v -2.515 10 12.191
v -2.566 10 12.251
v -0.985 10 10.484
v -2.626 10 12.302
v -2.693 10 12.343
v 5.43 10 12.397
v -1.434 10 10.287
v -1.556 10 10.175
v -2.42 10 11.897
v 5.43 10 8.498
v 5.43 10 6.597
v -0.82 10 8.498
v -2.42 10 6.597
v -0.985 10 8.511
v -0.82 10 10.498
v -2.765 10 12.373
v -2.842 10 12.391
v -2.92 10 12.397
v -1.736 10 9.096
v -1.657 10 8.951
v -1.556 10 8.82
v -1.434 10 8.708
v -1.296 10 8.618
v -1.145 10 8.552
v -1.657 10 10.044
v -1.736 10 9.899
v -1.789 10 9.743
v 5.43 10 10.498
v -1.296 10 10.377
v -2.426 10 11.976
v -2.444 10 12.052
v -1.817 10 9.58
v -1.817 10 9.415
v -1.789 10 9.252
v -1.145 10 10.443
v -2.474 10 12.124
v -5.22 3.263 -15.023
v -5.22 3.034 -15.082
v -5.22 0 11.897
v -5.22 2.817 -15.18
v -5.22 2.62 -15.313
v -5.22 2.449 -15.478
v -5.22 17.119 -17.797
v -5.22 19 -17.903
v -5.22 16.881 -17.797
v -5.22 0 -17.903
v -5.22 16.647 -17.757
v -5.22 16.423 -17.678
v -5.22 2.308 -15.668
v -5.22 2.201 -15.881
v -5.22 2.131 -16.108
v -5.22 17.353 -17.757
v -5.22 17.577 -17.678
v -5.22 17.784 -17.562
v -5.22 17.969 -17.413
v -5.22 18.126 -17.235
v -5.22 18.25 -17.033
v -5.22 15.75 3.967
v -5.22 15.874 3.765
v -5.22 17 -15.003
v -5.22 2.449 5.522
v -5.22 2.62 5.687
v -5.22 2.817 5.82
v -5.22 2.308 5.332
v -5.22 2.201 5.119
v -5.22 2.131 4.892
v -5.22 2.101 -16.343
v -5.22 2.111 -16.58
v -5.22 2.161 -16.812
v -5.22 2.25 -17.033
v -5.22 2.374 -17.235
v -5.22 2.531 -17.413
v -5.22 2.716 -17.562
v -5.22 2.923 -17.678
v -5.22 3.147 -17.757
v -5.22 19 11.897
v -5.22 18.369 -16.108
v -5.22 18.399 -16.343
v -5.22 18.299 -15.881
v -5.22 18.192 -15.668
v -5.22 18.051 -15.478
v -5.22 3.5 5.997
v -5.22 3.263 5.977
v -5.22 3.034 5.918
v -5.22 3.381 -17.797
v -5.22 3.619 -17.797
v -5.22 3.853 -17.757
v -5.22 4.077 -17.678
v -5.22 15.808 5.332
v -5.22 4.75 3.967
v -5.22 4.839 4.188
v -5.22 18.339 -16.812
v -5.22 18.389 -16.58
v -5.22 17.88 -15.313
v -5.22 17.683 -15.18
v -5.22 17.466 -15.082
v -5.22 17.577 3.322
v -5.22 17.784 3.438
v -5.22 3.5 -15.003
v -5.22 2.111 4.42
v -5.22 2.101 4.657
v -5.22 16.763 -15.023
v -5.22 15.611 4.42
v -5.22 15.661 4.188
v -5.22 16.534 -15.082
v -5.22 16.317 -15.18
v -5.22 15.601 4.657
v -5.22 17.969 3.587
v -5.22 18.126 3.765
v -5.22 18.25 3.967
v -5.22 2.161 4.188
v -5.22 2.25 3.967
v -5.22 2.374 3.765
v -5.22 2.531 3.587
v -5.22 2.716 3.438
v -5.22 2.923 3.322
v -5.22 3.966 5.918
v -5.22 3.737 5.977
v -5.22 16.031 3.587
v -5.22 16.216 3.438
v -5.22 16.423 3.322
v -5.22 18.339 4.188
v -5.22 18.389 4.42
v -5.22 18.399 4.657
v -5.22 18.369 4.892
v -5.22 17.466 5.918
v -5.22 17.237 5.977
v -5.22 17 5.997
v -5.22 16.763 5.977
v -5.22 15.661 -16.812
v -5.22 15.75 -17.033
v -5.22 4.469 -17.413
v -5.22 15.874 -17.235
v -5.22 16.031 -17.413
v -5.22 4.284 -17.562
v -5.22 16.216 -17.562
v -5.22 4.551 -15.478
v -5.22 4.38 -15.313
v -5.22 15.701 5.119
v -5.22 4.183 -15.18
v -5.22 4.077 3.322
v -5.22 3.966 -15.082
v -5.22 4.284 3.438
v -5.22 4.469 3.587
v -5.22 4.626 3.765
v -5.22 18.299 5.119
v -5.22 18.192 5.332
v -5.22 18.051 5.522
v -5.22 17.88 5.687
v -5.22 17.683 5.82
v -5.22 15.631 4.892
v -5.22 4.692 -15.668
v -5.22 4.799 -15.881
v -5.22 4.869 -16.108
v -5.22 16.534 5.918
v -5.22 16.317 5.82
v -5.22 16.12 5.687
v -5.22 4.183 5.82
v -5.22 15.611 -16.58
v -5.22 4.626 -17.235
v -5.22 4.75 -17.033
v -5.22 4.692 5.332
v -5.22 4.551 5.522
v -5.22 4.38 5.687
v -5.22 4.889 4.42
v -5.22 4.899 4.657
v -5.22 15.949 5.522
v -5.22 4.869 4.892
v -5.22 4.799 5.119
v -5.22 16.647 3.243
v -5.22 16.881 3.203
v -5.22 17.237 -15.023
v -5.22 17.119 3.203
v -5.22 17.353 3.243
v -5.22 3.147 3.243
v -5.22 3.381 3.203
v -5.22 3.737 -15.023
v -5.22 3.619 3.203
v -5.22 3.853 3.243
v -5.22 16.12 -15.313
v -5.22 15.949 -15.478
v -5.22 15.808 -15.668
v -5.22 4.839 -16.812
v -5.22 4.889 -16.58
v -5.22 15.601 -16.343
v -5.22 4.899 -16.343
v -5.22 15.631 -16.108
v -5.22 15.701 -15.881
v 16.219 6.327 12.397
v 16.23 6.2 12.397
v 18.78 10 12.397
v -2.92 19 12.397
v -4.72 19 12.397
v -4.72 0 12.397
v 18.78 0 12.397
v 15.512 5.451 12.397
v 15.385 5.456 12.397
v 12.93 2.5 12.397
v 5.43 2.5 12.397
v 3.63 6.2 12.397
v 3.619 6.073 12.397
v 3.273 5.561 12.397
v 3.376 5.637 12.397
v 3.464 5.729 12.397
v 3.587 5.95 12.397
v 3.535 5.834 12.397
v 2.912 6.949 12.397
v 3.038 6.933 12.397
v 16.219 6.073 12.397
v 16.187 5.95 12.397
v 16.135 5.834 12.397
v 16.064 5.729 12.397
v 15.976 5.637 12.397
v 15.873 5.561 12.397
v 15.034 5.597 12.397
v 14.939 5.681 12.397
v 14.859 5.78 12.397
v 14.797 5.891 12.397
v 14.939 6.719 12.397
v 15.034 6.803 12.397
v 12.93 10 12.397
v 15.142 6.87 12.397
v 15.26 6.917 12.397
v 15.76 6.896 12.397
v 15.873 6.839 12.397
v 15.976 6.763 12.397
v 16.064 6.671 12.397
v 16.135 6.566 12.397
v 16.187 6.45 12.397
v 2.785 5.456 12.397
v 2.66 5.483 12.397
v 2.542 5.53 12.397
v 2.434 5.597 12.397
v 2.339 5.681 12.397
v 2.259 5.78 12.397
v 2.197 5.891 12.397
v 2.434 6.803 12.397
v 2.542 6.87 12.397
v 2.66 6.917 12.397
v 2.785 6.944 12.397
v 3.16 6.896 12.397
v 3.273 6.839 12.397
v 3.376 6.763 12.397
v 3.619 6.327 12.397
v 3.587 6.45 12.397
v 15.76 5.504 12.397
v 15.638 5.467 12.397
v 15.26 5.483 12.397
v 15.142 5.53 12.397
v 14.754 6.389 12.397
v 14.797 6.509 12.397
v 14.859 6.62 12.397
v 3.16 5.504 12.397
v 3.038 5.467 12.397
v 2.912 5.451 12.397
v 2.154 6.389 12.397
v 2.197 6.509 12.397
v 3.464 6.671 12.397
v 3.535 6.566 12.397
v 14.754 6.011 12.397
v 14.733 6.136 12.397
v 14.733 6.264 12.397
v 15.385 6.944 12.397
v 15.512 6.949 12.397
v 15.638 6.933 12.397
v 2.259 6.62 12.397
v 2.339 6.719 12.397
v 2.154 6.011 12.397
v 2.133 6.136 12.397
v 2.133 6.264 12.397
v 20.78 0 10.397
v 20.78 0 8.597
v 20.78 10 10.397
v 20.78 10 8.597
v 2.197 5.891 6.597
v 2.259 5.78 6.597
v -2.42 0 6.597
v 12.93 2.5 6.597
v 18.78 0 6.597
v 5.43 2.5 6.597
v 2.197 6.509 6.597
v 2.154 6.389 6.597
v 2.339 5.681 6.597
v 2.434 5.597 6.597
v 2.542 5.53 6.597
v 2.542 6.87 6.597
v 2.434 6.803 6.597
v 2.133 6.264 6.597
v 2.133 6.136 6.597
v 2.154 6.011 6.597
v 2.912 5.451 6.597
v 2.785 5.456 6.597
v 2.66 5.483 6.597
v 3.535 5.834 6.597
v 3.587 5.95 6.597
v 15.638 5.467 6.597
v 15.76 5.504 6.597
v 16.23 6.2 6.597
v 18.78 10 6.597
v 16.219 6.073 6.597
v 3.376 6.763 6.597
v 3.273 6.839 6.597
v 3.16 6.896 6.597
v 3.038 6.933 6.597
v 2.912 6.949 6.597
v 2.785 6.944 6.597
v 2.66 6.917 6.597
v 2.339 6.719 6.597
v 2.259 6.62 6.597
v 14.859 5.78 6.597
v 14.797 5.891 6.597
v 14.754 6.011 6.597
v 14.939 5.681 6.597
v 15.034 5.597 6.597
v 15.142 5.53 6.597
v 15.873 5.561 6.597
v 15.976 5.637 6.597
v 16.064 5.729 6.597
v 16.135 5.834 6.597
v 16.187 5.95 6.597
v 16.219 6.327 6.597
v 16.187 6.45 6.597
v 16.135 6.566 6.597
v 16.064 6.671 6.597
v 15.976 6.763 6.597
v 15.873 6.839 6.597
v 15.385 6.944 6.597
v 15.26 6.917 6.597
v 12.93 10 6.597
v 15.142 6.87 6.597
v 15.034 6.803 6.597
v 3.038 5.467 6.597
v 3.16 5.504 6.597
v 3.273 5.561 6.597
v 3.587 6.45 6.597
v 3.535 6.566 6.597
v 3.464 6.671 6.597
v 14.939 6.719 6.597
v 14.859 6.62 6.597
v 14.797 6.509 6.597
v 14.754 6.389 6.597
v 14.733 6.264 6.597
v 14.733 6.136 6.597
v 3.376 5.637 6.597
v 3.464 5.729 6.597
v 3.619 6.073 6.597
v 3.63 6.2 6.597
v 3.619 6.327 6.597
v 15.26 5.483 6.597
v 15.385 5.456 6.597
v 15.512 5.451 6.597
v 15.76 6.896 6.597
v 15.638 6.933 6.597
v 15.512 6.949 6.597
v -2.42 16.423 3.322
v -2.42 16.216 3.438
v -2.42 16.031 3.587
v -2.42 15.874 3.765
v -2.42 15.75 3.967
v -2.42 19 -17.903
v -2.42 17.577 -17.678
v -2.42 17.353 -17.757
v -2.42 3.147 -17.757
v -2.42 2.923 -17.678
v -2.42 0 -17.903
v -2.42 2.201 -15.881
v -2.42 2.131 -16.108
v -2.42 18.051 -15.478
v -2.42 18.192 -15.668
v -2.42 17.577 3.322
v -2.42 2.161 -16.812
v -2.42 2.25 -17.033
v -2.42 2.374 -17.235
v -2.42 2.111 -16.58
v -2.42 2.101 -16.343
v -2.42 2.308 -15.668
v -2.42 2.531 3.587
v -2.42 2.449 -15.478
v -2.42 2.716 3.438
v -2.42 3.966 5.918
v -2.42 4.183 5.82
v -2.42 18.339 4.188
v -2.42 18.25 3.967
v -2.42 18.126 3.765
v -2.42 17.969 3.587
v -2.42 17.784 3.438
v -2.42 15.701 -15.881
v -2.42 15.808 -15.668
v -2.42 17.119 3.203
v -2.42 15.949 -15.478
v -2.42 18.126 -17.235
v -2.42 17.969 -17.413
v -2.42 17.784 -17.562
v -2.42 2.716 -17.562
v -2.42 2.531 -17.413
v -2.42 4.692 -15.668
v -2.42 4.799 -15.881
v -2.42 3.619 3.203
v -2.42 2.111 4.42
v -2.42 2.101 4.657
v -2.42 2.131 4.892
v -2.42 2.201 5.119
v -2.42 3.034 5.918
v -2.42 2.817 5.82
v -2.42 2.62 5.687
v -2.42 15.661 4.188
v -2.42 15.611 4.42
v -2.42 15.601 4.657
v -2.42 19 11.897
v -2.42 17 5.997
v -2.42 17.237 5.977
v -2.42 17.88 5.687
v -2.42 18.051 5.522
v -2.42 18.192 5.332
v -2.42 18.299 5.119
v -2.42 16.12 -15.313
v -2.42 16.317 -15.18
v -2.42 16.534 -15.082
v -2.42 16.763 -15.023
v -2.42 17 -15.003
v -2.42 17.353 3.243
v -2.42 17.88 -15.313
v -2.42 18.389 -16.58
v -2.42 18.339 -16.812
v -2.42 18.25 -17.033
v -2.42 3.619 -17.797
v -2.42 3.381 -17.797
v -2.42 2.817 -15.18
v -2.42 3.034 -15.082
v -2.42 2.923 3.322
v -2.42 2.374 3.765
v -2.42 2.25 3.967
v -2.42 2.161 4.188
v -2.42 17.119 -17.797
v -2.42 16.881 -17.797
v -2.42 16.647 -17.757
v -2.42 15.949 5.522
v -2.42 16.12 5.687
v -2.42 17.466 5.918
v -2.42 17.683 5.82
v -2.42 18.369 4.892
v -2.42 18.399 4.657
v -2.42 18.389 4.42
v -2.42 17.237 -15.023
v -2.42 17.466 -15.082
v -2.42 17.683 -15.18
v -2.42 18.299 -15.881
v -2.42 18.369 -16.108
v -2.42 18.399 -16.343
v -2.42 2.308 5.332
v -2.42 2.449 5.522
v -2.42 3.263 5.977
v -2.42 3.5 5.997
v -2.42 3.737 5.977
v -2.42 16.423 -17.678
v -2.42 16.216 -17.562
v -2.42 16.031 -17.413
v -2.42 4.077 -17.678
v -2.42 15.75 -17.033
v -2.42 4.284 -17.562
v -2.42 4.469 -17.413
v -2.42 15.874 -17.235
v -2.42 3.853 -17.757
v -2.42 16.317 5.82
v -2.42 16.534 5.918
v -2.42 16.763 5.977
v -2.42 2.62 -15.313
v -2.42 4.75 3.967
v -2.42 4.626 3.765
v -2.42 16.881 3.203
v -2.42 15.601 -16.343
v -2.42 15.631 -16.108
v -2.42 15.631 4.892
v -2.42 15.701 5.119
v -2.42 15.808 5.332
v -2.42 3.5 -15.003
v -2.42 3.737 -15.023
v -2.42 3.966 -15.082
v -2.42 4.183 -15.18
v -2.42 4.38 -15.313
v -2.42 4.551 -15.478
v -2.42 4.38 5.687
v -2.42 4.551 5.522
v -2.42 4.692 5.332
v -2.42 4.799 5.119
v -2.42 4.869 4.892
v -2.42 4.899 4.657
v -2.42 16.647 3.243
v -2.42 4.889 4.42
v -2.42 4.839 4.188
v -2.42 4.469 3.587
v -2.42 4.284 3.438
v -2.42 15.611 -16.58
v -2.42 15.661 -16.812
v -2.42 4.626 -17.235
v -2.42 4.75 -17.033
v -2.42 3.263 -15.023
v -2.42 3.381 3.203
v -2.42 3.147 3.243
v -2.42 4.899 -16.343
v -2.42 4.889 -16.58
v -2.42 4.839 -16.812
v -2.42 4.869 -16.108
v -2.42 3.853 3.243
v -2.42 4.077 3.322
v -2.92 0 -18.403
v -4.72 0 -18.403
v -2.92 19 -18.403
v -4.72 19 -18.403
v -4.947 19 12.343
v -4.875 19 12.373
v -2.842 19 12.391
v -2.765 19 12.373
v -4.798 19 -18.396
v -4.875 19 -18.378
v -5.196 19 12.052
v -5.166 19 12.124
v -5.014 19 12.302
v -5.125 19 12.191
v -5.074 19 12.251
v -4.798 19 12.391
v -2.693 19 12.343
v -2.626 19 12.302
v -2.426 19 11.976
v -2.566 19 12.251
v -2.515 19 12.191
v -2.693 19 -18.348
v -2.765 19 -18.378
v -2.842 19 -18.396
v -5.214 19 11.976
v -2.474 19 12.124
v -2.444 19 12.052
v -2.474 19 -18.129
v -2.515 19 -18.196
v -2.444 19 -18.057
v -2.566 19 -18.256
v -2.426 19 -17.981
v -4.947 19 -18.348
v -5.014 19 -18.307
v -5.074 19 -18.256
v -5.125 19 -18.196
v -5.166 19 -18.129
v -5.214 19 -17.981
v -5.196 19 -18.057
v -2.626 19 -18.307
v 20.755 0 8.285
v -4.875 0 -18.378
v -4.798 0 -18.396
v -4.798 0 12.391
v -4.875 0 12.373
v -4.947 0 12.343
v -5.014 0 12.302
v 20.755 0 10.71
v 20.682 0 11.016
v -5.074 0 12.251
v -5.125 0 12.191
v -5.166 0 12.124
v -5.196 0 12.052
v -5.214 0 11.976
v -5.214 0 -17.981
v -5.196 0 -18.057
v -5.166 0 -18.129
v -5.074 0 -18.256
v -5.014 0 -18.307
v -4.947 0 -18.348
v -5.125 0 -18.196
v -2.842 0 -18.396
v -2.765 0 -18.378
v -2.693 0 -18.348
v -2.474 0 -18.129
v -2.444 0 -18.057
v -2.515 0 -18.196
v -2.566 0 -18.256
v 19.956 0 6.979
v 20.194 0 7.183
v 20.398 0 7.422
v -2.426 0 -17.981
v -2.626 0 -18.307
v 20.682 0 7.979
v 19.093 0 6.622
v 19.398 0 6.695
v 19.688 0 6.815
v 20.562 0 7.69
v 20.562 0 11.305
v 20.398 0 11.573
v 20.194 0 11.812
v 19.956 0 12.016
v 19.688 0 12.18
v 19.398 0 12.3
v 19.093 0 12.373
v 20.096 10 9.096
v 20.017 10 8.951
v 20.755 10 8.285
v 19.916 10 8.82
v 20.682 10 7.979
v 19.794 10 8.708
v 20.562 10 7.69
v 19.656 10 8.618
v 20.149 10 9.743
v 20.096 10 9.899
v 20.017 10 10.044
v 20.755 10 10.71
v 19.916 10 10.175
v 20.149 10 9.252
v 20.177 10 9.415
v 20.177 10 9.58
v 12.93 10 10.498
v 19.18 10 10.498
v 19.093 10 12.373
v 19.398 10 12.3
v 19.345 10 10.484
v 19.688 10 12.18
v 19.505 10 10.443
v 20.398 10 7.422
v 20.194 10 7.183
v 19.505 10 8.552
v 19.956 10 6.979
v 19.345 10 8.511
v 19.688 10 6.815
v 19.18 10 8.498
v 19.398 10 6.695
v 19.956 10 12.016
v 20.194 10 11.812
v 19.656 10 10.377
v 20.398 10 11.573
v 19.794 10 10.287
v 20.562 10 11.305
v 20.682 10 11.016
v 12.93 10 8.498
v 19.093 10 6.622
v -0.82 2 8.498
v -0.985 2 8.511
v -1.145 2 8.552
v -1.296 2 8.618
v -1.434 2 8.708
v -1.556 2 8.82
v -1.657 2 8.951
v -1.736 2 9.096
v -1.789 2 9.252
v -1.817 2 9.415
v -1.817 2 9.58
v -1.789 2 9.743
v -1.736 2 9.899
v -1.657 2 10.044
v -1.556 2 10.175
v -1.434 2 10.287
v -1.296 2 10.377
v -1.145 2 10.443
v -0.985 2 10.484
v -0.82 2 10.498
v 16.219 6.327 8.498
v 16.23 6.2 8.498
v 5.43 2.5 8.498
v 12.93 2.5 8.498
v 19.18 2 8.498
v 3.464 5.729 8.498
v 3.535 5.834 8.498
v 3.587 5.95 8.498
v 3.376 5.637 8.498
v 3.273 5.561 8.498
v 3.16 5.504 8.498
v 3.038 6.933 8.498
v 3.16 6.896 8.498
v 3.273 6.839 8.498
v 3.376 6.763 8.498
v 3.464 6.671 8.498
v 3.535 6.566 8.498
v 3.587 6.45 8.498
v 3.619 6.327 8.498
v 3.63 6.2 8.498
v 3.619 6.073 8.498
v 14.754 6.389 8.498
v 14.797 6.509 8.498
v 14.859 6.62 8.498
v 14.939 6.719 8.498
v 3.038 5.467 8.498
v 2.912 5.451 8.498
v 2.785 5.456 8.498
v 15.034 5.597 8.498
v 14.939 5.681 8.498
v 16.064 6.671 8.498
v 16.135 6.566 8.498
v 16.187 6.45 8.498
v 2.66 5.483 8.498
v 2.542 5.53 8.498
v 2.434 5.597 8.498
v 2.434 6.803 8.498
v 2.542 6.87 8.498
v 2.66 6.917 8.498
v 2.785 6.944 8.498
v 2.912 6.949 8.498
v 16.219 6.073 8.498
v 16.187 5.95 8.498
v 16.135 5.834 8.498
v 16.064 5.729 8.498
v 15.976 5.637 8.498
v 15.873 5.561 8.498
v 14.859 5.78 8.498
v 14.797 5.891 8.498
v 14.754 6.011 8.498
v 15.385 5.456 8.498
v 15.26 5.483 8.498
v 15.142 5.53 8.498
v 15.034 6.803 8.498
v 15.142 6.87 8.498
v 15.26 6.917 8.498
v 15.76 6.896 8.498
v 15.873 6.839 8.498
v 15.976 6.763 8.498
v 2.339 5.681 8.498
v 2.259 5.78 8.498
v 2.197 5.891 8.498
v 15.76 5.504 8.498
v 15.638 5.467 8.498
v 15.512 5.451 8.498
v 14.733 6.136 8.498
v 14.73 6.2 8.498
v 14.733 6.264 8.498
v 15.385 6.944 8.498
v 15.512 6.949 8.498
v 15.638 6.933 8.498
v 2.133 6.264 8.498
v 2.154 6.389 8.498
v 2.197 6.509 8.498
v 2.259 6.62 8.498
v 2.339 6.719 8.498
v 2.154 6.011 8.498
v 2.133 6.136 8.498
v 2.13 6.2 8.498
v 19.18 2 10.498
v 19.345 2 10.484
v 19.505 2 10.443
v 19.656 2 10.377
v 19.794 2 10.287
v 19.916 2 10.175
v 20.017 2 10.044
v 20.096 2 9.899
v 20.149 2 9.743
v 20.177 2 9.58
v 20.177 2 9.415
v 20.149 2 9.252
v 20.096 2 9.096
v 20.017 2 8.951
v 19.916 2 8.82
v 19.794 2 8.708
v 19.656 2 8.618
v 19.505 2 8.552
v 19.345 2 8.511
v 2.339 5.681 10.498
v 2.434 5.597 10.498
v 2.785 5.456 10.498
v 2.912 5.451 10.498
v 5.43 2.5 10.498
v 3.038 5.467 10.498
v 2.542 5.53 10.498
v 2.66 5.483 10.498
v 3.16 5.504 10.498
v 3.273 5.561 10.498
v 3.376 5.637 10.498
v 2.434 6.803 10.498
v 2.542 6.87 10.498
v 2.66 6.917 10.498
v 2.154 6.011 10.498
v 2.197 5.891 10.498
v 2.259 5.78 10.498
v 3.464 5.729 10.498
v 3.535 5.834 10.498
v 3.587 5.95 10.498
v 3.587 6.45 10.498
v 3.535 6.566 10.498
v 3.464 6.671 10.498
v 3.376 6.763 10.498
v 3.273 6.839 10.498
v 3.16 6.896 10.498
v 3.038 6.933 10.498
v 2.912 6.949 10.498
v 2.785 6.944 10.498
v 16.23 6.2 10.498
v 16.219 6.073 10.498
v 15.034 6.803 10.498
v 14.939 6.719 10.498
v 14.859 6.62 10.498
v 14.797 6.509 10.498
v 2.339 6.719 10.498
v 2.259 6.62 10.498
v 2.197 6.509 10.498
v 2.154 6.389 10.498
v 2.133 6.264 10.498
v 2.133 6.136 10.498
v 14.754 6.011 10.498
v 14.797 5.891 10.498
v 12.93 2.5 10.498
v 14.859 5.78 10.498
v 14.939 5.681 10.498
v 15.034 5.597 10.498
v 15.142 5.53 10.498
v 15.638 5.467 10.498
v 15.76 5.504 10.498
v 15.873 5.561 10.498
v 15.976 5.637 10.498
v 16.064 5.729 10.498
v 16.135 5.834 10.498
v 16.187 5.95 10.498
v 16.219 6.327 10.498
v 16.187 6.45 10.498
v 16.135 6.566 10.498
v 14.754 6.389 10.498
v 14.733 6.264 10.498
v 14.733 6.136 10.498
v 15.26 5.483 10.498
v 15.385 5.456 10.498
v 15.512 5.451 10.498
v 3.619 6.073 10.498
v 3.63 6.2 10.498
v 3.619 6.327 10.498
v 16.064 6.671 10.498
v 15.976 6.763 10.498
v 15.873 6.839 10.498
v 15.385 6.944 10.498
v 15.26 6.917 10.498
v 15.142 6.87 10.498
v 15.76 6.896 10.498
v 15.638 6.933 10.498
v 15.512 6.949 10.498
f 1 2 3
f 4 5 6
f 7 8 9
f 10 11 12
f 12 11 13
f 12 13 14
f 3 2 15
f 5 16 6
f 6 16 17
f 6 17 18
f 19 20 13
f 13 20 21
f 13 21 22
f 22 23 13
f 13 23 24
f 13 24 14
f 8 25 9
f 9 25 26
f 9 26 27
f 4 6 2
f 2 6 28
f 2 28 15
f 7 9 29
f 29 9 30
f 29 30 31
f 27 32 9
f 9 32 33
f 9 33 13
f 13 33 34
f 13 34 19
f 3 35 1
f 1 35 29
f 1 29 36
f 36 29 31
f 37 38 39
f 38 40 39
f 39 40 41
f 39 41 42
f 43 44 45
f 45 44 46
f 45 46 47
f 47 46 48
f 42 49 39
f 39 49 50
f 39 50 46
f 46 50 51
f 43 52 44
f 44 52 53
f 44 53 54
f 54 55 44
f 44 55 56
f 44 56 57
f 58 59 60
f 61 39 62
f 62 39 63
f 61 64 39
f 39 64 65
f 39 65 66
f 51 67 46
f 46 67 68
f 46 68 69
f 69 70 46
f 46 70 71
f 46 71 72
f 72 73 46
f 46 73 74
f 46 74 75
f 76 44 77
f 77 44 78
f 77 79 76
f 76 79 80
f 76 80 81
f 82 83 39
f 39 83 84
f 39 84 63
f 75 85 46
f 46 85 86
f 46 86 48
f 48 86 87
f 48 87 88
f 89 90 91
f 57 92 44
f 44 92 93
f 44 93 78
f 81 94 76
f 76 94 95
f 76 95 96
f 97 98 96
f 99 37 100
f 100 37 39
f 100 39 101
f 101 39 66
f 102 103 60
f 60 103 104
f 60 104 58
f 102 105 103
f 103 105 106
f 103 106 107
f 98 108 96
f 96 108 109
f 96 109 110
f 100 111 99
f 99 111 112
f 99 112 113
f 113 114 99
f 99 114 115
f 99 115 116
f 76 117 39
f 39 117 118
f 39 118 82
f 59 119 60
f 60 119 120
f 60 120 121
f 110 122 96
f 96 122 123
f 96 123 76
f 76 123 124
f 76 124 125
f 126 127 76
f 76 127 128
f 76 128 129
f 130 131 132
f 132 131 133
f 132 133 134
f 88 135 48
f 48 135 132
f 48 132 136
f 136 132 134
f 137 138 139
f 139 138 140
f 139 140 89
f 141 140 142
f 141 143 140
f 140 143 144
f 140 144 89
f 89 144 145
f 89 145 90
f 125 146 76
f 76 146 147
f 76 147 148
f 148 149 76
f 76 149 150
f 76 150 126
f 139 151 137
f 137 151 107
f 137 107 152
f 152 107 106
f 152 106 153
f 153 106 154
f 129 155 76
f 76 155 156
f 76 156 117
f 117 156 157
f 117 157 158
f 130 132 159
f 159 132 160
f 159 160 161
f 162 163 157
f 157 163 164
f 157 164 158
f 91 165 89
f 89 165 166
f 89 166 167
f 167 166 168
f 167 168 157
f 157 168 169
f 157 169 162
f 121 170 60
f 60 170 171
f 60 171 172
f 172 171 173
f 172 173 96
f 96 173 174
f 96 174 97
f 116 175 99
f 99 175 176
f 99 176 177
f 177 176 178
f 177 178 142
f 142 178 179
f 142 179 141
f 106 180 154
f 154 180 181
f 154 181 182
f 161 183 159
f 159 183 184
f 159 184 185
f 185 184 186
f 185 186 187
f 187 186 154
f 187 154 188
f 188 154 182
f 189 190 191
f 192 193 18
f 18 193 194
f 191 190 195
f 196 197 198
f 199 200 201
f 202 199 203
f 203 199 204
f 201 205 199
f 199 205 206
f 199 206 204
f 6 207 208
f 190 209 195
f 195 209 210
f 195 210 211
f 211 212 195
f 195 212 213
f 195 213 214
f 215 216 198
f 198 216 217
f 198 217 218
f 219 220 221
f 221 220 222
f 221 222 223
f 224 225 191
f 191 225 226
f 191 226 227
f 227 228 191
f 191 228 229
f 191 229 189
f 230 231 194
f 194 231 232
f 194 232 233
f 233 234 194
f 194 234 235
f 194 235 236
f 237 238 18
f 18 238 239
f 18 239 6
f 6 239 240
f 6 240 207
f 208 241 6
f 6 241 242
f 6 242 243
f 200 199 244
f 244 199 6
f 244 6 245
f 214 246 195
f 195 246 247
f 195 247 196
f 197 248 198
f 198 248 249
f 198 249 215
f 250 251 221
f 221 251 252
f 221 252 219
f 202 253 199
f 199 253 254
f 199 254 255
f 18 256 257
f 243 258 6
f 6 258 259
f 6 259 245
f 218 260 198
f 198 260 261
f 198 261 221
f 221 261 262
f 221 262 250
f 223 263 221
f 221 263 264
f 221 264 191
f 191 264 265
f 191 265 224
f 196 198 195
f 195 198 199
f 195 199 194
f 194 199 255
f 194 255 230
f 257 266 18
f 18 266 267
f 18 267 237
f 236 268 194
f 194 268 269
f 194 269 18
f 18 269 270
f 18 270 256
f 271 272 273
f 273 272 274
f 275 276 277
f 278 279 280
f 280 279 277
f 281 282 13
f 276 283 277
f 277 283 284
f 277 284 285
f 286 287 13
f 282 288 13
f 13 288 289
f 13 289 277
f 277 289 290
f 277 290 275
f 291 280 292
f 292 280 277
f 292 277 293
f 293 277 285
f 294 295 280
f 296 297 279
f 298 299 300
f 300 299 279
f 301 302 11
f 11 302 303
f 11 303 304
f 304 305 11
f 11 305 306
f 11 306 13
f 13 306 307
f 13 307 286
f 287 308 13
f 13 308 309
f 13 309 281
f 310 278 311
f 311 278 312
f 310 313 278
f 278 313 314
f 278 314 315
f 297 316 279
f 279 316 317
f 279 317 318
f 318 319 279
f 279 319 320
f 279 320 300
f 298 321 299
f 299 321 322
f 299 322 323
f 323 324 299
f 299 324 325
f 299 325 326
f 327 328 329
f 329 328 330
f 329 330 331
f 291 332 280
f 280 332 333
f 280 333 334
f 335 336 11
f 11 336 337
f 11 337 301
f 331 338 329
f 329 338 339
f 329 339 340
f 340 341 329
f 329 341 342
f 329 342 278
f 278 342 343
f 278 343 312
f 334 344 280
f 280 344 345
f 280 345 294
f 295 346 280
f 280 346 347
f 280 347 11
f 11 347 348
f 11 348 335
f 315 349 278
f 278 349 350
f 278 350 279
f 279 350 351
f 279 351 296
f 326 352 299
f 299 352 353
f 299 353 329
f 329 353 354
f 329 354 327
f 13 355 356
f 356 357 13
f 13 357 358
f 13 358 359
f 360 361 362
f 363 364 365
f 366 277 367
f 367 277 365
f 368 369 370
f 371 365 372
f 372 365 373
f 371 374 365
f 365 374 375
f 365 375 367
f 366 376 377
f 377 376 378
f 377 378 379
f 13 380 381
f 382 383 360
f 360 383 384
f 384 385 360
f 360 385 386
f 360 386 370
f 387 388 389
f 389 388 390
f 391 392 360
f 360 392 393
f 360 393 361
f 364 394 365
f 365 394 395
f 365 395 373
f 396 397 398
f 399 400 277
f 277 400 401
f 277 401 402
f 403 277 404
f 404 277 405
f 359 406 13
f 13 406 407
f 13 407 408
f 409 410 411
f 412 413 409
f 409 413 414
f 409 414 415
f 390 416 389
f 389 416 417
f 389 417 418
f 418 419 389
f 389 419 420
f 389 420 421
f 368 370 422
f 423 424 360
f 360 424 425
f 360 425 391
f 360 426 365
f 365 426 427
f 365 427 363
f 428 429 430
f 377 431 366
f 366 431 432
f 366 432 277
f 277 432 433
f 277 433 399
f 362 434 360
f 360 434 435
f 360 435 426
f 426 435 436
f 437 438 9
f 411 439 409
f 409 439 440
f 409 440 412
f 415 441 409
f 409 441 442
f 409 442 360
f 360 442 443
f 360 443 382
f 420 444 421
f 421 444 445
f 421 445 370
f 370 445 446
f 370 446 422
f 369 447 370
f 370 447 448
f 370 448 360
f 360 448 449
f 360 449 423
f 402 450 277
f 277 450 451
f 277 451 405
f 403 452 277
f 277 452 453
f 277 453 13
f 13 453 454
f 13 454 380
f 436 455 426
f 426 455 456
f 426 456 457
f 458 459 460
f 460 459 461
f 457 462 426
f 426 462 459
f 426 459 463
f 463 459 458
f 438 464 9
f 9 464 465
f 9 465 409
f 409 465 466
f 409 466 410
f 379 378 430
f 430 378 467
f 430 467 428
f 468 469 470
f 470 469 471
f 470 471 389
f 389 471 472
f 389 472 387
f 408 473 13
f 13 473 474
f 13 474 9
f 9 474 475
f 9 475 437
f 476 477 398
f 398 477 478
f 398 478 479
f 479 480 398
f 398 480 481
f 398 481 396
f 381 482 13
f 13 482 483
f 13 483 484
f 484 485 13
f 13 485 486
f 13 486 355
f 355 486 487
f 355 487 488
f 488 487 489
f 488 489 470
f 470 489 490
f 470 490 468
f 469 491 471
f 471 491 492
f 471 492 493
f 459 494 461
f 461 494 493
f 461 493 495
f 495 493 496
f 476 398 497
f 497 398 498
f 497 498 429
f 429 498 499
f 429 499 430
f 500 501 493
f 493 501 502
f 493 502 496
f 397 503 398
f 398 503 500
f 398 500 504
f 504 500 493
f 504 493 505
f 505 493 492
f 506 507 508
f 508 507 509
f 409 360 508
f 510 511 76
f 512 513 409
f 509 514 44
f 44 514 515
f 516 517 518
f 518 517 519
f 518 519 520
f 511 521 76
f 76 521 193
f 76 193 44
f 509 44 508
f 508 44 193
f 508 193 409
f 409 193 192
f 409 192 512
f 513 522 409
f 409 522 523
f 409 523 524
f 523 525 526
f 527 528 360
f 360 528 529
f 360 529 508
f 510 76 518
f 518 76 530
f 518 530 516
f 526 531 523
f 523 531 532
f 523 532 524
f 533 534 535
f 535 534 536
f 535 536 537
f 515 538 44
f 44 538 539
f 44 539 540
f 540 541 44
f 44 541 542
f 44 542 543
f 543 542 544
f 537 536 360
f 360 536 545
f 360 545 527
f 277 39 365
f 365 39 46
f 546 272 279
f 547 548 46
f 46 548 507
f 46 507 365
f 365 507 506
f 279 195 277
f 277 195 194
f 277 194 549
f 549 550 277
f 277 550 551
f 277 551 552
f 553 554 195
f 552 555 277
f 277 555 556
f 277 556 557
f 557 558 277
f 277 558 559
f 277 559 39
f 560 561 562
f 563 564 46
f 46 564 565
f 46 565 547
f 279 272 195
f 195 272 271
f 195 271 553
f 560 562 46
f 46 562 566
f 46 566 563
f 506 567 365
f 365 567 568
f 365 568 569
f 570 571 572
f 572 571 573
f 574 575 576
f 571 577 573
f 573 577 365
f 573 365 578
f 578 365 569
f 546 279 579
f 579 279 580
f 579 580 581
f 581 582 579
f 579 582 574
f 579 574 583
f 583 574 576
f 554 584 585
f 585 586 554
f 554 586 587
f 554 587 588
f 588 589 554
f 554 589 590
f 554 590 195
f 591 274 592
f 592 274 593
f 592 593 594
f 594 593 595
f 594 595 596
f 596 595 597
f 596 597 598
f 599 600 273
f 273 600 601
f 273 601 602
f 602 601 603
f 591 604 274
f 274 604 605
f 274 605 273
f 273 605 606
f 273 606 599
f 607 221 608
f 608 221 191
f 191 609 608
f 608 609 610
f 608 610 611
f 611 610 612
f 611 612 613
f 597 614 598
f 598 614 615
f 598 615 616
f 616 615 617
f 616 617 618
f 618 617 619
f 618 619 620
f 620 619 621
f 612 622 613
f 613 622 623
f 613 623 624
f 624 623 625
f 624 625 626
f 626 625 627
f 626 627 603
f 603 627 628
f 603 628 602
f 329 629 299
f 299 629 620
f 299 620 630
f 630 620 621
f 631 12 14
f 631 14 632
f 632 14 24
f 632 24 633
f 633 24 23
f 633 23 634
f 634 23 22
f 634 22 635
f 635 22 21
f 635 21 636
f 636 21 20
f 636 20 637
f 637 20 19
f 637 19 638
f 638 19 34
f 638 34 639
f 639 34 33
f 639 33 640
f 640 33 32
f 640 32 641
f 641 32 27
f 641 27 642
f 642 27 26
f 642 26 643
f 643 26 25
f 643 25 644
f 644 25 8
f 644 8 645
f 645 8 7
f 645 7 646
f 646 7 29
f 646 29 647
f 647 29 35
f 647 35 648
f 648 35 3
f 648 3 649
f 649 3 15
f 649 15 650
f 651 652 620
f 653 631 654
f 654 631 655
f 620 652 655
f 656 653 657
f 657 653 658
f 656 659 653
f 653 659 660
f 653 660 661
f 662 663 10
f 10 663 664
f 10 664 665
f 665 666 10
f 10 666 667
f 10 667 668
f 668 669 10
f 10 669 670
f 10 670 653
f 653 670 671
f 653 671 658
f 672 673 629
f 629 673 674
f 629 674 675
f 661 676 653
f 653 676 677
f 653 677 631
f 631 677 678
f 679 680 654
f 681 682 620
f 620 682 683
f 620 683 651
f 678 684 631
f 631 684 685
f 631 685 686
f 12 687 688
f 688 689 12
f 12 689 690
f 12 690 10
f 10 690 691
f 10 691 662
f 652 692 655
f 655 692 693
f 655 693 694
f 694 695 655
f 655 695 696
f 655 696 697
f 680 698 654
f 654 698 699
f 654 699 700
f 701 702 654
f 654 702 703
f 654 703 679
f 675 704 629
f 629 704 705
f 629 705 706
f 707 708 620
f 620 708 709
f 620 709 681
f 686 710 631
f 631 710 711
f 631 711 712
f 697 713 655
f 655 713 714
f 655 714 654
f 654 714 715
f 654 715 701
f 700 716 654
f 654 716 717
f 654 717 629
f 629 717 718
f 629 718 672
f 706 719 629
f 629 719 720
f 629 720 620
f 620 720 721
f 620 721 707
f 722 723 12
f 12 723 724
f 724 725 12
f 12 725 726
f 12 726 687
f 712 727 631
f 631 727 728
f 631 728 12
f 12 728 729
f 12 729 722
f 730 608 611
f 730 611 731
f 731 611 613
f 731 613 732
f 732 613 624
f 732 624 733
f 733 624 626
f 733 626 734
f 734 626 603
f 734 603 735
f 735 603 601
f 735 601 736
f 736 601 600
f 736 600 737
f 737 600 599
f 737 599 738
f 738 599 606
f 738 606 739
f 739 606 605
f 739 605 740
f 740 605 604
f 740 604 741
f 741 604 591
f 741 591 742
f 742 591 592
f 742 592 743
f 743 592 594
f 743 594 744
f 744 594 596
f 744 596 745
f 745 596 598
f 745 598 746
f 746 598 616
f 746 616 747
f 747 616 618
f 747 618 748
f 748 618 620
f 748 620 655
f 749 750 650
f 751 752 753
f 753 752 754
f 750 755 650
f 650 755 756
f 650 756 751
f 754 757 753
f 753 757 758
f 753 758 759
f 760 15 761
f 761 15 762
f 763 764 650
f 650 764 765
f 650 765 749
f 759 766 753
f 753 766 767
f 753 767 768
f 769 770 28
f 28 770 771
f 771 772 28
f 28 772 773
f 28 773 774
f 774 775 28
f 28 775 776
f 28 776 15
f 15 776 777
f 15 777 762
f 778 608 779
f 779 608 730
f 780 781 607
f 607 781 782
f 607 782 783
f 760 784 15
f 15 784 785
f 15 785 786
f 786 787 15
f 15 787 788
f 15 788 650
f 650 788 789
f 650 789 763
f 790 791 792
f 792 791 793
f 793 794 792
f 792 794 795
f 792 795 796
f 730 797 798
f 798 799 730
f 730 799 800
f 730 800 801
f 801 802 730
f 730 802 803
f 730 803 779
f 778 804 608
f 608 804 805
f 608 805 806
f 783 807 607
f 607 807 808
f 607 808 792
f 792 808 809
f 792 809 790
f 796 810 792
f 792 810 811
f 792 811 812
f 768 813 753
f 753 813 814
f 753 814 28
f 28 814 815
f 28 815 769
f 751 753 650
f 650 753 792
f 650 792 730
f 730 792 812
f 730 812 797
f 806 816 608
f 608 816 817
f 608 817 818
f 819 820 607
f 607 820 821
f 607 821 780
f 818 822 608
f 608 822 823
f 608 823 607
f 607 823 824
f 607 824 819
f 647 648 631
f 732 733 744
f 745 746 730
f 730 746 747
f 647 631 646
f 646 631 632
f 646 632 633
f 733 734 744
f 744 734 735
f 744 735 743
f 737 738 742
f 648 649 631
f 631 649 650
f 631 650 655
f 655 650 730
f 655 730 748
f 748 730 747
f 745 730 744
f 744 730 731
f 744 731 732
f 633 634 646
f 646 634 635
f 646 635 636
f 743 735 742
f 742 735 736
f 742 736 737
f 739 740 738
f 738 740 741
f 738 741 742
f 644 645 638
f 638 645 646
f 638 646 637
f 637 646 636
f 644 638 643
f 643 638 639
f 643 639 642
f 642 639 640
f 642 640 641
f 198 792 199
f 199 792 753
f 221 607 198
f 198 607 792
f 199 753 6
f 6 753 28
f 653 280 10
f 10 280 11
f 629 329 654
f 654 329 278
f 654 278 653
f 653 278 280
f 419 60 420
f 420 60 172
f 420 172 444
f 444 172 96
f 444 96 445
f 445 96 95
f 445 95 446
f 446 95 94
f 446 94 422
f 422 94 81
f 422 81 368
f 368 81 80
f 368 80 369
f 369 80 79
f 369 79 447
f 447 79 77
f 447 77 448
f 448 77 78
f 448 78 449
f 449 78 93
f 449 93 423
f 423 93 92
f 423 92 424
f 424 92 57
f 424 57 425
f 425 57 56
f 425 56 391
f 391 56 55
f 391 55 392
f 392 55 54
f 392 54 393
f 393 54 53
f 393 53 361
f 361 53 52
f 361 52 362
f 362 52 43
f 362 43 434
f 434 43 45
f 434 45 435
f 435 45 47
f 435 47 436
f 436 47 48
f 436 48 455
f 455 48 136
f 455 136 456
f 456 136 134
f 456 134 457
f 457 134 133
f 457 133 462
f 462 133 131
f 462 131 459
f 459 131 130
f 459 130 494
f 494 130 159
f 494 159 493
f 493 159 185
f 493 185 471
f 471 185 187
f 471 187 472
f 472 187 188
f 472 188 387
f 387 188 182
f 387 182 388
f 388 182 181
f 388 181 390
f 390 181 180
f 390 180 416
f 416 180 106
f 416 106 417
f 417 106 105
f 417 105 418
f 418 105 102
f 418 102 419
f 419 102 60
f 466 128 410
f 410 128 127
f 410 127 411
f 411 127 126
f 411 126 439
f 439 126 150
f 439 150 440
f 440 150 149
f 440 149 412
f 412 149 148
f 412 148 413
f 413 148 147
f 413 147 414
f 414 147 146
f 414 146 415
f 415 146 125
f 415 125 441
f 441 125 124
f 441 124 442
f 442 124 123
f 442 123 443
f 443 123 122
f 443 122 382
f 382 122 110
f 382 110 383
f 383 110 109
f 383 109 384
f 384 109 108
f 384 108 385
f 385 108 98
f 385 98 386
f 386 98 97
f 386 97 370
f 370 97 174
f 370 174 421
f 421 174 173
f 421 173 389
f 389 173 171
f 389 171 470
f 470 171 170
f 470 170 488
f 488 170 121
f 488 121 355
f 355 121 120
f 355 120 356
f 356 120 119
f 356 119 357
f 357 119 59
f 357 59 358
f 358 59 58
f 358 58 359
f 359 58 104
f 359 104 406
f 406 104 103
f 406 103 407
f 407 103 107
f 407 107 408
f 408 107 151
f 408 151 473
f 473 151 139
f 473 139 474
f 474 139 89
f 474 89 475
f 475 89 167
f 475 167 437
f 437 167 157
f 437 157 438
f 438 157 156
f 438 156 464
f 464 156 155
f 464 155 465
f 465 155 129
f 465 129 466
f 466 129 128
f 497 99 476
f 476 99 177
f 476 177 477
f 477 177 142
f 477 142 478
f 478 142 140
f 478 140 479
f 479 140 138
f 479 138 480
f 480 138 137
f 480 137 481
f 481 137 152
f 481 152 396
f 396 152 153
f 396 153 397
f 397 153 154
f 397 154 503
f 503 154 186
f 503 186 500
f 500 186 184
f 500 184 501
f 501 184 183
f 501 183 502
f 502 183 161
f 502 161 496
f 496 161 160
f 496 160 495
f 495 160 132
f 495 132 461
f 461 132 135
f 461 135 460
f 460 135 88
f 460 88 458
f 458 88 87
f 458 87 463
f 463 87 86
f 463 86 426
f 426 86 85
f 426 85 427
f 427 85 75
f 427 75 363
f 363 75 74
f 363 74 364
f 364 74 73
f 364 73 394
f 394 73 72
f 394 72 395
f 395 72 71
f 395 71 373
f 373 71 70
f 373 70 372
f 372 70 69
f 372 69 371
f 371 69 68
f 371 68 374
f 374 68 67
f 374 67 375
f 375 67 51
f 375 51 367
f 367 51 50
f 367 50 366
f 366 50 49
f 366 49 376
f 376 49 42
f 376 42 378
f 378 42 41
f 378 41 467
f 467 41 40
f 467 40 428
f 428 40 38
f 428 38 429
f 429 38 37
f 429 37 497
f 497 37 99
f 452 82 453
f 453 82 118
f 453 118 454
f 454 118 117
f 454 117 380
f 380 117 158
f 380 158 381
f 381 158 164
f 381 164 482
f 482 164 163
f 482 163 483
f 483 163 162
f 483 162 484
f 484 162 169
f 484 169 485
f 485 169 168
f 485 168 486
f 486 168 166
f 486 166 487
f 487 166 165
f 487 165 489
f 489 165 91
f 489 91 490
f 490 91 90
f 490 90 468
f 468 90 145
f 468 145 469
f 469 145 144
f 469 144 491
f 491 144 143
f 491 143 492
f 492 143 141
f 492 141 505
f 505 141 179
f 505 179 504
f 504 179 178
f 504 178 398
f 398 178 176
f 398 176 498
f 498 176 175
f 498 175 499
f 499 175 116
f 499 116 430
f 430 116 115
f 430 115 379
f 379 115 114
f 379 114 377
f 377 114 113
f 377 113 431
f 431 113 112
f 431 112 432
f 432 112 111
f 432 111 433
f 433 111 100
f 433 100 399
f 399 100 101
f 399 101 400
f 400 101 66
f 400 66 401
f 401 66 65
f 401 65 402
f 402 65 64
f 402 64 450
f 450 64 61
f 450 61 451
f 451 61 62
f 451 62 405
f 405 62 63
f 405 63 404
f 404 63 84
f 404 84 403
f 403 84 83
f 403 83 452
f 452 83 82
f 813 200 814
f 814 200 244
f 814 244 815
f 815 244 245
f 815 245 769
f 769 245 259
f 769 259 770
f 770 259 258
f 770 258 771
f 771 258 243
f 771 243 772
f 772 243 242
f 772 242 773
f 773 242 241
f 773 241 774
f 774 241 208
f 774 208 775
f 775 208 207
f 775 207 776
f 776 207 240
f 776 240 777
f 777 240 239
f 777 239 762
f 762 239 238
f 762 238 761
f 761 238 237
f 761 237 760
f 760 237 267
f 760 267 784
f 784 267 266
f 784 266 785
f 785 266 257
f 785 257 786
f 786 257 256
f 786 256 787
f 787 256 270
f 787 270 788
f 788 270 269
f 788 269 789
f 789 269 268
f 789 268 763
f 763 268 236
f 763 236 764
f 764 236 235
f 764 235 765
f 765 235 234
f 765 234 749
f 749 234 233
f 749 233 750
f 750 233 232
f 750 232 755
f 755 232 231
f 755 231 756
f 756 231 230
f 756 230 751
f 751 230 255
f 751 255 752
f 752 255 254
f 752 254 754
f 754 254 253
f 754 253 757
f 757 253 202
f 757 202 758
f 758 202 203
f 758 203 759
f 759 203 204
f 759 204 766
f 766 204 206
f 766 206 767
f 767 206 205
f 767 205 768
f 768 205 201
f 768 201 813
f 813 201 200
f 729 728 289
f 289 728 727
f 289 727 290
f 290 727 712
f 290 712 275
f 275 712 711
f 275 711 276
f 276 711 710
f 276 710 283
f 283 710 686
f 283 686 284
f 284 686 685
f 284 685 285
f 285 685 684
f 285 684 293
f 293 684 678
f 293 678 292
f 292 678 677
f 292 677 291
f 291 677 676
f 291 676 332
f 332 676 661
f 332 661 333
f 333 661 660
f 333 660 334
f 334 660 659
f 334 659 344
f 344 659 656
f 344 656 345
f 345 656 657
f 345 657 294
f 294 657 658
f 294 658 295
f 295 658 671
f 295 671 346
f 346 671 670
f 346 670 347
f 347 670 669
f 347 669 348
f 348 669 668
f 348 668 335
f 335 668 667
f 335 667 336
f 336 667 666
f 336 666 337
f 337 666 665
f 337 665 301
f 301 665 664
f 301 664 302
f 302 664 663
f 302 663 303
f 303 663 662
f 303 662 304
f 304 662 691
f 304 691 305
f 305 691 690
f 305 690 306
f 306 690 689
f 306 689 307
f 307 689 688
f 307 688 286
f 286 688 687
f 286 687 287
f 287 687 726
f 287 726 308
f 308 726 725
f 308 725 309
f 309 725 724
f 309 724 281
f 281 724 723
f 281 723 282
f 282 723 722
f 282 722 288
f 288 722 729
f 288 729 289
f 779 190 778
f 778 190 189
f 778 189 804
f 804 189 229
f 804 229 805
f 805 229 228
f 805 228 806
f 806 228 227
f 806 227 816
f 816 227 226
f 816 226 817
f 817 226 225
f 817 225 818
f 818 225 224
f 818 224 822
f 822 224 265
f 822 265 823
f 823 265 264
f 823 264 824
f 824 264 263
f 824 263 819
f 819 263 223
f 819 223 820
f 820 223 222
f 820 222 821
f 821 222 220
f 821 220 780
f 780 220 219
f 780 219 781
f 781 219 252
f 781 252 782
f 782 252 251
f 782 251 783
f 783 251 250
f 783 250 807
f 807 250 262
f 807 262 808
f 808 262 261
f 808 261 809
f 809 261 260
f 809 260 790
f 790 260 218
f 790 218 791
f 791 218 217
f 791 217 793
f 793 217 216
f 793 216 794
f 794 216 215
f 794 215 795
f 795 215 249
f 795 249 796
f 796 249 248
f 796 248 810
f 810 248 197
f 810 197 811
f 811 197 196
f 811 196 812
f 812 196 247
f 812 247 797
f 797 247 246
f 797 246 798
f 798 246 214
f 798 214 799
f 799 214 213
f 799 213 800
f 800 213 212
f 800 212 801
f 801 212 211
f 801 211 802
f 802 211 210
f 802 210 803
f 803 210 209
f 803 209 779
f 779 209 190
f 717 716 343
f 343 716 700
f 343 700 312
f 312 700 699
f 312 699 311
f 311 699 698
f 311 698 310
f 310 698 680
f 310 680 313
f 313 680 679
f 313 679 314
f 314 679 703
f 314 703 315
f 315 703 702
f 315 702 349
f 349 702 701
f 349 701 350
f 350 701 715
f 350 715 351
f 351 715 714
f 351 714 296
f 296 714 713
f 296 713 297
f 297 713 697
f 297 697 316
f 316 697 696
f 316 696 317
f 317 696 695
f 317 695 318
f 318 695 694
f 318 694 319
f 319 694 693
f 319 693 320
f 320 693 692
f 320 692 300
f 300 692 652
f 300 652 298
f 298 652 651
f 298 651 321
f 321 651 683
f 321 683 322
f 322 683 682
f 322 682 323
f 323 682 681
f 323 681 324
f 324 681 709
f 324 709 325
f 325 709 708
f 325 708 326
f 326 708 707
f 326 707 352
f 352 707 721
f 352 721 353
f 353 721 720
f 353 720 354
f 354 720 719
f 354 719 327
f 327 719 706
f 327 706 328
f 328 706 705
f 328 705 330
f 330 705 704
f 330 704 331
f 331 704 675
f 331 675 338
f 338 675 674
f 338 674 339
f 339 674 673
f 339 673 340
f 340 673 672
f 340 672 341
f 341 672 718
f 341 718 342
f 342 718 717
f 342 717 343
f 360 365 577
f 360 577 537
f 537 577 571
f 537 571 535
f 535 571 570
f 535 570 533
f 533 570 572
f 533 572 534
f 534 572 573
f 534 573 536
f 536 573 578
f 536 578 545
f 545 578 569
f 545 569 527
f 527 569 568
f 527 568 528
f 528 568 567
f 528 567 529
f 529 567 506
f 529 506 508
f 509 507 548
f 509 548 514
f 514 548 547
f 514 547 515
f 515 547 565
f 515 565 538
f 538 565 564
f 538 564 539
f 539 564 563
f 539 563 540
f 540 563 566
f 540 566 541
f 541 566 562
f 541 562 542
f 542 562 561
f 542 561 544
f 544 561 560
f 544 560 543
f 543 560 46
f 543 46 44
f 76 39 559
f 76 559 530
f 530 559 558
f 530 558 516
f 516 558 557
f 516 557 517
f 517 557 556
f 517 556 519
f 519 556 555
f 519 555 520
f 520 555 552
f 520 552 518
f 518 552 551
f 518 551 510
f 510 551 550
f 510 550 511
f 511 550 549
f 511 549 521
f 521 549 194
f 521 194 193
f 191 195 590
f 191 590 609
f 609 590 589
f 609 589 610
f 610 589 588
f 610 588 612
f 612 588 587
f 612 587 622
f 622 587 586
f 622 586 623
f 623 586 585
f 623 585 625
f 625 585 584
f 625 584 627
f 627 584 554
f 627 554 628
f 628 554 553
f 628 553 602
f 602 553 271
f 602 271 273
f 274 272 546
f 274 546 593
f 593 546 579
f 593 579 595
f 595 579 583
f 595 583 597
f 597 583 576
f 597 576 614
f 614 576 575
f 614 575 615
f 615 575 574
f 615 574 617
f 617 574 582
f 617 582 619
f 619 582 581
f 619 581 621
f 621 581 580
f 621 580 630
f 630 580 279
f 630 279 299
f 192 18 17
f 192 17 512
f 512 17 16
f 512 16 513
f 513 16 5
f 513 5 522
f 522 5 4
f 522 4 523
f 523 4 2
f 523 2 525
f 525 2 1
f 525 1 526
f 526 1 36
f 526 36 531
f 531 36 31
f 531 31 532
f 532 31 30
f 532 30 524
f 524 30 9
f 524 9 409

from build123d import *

# Parameters (mm, degrees)
EXTRUDE_1_DEPTH     = 19
SKETCH_3_W          = 23.2
SKETCH_3_H          = 9
CUT_EXTRUDE_2_DEPTH = 31.8
CUT_EXTRUDE_3_DEPTH = 8
SKETCH_5_W          = 7.5
SKETCH_5_H          = 7.5
CUT_EXTRUDE_4_DEPTH = 31.8
SKETCH_6_R          = 1.4
CUT_EXTRUDE_5_DEPTH = 27
SKETCH_7_R          = 0.75
CUT_EXTRUDE_6_DEPTH = 31.8
FILLET_2_R          = 0.5
FILLET_3_R          = 2
FILLET_4_R          = 0.5


with BuildPart() as part:
    # 草图1 → 凸台-拉伸1 (new body)
    with BuildSketch(Plane(origin=(0, 0, 0), x_dir=(1, 0, 0), z_dir=(0, 1, 0))):
        Polygon((-5.22, 18.4025), (-2.42, 18.4025), (-2.42, -6.5975), (20.78, -6.5975), (20.78, -12.3975), (-5.22, -12.3975), align=None)
    extrude(amount=EXTRUDE_1_DEPTH)

    # 草图3 → 切除-拉伸2 (cut, through all)
    with BuildSketch(Plane.XY.offset(12.3975)):
        with Locations((9.18, 14.5)):
            Rectangle(SKETCH_3_W, SKETCH_3_H)
    extrude(amount=-CUT_EXTRUDE_2_DEPTH, mode=Mode.SUBTRACT)

    # 草图4 → 切除-拉伸3 (cut)
    with BuildSketch(Plane(origin=(0, 10, 0), x_dir=(1, 0, 0), z_dir=(0, 1, 0))):
        with BuildLine():
            Line((-0.82, -8.4975), (19.18, -8.4975))
            ThreePointArc((19.18, -8.4975), (20.18, -9.4975), (19.18, -10.4975))
            Line((19.18, -10.4975), (-0.82, -10.4975))
            ThreePointArc((-0.82, -10.4975), (-1.82, -9.4975), (-0.82, -8.4975))
        make_face()
    extrude(amount=-CUT_EXTRUDE_3_DEPTH, mode=Mode.SUBTRACT)

    # 草图5 → 切除-拉伸4 (cut, through all)
    with BuildSketch(Plane.XY.offset(12.3975)):
        with Locations((9.18, 6.25)):
            Rectangle(SKETCH_5_W, SKETCH_5_H)
    extrude(amount=-CUT_EXTRUDE_4_DEPTH, mode=Mode.SUBTRACT)

    # 草图6 → 切除-拉伸5 (cut, through all)
    with BuildSketch(Plane.ZY.offset(5.22)):
        with Locations((-16.4025, 17)):
            Circle(SKETCH_6_R)
        with Locations((4.5975, 17)):
            Circle(SKETCH_6_R)
        with Locations((-16.4025, 3.5)):
            Circle(SKETCH_6_R)
        with Locations((4.5975, 3.5)):
            Circle(SKETCH_6_R)
    extrude(amount=-CUT_EXTRUDE_5_DEPTH, mode=Mode.SUBTRACT)

    # 草图7 → 切除-拉伸6 (cut, through all)
    with BuildSketch(Plane.XY.offset(12.3975)):
        with Locations((2.88, 6.2)):
            Circle(SKETCH_7_R)
        with Locations((15.48, 6.2)):
            Circle(SKETCH_7_R)
    extrude(amount=-CUT_EXTRUDE_6_DEPTH, mode=Mode.SUBTRACT)

    # 圆角2
    fillet_2_edges = [part.edges().sort_by_distance(p)[0] for p in [
        (-5.22, 9.5, -18.4025),
        (-2.42, 9.5, -18.4025),
        (-5.22, 9.5, 12.3975),
    ]]
    fillet(fillet_2_edges, radius=FILLET_2_R)

    # 圆角3
    fillet_3_edges = [part.edges().sort_by_distance(p)[0] for p in [
        (20.78, 5, 6.5975),
        (20.78, 5, 12.3975),
    ]]
    fillet(fillet_3_edges, radius=FILLET_3_R)

    # 圆角4
    fillet_4_edges = [part.edges().sort_by_distance(p)[0] for p in [
        (-2.42, 14.5, 12.3975),
    ]]
    fillet(fillet_4_edges, radius=FILLET_4_R)


solid = part.part
